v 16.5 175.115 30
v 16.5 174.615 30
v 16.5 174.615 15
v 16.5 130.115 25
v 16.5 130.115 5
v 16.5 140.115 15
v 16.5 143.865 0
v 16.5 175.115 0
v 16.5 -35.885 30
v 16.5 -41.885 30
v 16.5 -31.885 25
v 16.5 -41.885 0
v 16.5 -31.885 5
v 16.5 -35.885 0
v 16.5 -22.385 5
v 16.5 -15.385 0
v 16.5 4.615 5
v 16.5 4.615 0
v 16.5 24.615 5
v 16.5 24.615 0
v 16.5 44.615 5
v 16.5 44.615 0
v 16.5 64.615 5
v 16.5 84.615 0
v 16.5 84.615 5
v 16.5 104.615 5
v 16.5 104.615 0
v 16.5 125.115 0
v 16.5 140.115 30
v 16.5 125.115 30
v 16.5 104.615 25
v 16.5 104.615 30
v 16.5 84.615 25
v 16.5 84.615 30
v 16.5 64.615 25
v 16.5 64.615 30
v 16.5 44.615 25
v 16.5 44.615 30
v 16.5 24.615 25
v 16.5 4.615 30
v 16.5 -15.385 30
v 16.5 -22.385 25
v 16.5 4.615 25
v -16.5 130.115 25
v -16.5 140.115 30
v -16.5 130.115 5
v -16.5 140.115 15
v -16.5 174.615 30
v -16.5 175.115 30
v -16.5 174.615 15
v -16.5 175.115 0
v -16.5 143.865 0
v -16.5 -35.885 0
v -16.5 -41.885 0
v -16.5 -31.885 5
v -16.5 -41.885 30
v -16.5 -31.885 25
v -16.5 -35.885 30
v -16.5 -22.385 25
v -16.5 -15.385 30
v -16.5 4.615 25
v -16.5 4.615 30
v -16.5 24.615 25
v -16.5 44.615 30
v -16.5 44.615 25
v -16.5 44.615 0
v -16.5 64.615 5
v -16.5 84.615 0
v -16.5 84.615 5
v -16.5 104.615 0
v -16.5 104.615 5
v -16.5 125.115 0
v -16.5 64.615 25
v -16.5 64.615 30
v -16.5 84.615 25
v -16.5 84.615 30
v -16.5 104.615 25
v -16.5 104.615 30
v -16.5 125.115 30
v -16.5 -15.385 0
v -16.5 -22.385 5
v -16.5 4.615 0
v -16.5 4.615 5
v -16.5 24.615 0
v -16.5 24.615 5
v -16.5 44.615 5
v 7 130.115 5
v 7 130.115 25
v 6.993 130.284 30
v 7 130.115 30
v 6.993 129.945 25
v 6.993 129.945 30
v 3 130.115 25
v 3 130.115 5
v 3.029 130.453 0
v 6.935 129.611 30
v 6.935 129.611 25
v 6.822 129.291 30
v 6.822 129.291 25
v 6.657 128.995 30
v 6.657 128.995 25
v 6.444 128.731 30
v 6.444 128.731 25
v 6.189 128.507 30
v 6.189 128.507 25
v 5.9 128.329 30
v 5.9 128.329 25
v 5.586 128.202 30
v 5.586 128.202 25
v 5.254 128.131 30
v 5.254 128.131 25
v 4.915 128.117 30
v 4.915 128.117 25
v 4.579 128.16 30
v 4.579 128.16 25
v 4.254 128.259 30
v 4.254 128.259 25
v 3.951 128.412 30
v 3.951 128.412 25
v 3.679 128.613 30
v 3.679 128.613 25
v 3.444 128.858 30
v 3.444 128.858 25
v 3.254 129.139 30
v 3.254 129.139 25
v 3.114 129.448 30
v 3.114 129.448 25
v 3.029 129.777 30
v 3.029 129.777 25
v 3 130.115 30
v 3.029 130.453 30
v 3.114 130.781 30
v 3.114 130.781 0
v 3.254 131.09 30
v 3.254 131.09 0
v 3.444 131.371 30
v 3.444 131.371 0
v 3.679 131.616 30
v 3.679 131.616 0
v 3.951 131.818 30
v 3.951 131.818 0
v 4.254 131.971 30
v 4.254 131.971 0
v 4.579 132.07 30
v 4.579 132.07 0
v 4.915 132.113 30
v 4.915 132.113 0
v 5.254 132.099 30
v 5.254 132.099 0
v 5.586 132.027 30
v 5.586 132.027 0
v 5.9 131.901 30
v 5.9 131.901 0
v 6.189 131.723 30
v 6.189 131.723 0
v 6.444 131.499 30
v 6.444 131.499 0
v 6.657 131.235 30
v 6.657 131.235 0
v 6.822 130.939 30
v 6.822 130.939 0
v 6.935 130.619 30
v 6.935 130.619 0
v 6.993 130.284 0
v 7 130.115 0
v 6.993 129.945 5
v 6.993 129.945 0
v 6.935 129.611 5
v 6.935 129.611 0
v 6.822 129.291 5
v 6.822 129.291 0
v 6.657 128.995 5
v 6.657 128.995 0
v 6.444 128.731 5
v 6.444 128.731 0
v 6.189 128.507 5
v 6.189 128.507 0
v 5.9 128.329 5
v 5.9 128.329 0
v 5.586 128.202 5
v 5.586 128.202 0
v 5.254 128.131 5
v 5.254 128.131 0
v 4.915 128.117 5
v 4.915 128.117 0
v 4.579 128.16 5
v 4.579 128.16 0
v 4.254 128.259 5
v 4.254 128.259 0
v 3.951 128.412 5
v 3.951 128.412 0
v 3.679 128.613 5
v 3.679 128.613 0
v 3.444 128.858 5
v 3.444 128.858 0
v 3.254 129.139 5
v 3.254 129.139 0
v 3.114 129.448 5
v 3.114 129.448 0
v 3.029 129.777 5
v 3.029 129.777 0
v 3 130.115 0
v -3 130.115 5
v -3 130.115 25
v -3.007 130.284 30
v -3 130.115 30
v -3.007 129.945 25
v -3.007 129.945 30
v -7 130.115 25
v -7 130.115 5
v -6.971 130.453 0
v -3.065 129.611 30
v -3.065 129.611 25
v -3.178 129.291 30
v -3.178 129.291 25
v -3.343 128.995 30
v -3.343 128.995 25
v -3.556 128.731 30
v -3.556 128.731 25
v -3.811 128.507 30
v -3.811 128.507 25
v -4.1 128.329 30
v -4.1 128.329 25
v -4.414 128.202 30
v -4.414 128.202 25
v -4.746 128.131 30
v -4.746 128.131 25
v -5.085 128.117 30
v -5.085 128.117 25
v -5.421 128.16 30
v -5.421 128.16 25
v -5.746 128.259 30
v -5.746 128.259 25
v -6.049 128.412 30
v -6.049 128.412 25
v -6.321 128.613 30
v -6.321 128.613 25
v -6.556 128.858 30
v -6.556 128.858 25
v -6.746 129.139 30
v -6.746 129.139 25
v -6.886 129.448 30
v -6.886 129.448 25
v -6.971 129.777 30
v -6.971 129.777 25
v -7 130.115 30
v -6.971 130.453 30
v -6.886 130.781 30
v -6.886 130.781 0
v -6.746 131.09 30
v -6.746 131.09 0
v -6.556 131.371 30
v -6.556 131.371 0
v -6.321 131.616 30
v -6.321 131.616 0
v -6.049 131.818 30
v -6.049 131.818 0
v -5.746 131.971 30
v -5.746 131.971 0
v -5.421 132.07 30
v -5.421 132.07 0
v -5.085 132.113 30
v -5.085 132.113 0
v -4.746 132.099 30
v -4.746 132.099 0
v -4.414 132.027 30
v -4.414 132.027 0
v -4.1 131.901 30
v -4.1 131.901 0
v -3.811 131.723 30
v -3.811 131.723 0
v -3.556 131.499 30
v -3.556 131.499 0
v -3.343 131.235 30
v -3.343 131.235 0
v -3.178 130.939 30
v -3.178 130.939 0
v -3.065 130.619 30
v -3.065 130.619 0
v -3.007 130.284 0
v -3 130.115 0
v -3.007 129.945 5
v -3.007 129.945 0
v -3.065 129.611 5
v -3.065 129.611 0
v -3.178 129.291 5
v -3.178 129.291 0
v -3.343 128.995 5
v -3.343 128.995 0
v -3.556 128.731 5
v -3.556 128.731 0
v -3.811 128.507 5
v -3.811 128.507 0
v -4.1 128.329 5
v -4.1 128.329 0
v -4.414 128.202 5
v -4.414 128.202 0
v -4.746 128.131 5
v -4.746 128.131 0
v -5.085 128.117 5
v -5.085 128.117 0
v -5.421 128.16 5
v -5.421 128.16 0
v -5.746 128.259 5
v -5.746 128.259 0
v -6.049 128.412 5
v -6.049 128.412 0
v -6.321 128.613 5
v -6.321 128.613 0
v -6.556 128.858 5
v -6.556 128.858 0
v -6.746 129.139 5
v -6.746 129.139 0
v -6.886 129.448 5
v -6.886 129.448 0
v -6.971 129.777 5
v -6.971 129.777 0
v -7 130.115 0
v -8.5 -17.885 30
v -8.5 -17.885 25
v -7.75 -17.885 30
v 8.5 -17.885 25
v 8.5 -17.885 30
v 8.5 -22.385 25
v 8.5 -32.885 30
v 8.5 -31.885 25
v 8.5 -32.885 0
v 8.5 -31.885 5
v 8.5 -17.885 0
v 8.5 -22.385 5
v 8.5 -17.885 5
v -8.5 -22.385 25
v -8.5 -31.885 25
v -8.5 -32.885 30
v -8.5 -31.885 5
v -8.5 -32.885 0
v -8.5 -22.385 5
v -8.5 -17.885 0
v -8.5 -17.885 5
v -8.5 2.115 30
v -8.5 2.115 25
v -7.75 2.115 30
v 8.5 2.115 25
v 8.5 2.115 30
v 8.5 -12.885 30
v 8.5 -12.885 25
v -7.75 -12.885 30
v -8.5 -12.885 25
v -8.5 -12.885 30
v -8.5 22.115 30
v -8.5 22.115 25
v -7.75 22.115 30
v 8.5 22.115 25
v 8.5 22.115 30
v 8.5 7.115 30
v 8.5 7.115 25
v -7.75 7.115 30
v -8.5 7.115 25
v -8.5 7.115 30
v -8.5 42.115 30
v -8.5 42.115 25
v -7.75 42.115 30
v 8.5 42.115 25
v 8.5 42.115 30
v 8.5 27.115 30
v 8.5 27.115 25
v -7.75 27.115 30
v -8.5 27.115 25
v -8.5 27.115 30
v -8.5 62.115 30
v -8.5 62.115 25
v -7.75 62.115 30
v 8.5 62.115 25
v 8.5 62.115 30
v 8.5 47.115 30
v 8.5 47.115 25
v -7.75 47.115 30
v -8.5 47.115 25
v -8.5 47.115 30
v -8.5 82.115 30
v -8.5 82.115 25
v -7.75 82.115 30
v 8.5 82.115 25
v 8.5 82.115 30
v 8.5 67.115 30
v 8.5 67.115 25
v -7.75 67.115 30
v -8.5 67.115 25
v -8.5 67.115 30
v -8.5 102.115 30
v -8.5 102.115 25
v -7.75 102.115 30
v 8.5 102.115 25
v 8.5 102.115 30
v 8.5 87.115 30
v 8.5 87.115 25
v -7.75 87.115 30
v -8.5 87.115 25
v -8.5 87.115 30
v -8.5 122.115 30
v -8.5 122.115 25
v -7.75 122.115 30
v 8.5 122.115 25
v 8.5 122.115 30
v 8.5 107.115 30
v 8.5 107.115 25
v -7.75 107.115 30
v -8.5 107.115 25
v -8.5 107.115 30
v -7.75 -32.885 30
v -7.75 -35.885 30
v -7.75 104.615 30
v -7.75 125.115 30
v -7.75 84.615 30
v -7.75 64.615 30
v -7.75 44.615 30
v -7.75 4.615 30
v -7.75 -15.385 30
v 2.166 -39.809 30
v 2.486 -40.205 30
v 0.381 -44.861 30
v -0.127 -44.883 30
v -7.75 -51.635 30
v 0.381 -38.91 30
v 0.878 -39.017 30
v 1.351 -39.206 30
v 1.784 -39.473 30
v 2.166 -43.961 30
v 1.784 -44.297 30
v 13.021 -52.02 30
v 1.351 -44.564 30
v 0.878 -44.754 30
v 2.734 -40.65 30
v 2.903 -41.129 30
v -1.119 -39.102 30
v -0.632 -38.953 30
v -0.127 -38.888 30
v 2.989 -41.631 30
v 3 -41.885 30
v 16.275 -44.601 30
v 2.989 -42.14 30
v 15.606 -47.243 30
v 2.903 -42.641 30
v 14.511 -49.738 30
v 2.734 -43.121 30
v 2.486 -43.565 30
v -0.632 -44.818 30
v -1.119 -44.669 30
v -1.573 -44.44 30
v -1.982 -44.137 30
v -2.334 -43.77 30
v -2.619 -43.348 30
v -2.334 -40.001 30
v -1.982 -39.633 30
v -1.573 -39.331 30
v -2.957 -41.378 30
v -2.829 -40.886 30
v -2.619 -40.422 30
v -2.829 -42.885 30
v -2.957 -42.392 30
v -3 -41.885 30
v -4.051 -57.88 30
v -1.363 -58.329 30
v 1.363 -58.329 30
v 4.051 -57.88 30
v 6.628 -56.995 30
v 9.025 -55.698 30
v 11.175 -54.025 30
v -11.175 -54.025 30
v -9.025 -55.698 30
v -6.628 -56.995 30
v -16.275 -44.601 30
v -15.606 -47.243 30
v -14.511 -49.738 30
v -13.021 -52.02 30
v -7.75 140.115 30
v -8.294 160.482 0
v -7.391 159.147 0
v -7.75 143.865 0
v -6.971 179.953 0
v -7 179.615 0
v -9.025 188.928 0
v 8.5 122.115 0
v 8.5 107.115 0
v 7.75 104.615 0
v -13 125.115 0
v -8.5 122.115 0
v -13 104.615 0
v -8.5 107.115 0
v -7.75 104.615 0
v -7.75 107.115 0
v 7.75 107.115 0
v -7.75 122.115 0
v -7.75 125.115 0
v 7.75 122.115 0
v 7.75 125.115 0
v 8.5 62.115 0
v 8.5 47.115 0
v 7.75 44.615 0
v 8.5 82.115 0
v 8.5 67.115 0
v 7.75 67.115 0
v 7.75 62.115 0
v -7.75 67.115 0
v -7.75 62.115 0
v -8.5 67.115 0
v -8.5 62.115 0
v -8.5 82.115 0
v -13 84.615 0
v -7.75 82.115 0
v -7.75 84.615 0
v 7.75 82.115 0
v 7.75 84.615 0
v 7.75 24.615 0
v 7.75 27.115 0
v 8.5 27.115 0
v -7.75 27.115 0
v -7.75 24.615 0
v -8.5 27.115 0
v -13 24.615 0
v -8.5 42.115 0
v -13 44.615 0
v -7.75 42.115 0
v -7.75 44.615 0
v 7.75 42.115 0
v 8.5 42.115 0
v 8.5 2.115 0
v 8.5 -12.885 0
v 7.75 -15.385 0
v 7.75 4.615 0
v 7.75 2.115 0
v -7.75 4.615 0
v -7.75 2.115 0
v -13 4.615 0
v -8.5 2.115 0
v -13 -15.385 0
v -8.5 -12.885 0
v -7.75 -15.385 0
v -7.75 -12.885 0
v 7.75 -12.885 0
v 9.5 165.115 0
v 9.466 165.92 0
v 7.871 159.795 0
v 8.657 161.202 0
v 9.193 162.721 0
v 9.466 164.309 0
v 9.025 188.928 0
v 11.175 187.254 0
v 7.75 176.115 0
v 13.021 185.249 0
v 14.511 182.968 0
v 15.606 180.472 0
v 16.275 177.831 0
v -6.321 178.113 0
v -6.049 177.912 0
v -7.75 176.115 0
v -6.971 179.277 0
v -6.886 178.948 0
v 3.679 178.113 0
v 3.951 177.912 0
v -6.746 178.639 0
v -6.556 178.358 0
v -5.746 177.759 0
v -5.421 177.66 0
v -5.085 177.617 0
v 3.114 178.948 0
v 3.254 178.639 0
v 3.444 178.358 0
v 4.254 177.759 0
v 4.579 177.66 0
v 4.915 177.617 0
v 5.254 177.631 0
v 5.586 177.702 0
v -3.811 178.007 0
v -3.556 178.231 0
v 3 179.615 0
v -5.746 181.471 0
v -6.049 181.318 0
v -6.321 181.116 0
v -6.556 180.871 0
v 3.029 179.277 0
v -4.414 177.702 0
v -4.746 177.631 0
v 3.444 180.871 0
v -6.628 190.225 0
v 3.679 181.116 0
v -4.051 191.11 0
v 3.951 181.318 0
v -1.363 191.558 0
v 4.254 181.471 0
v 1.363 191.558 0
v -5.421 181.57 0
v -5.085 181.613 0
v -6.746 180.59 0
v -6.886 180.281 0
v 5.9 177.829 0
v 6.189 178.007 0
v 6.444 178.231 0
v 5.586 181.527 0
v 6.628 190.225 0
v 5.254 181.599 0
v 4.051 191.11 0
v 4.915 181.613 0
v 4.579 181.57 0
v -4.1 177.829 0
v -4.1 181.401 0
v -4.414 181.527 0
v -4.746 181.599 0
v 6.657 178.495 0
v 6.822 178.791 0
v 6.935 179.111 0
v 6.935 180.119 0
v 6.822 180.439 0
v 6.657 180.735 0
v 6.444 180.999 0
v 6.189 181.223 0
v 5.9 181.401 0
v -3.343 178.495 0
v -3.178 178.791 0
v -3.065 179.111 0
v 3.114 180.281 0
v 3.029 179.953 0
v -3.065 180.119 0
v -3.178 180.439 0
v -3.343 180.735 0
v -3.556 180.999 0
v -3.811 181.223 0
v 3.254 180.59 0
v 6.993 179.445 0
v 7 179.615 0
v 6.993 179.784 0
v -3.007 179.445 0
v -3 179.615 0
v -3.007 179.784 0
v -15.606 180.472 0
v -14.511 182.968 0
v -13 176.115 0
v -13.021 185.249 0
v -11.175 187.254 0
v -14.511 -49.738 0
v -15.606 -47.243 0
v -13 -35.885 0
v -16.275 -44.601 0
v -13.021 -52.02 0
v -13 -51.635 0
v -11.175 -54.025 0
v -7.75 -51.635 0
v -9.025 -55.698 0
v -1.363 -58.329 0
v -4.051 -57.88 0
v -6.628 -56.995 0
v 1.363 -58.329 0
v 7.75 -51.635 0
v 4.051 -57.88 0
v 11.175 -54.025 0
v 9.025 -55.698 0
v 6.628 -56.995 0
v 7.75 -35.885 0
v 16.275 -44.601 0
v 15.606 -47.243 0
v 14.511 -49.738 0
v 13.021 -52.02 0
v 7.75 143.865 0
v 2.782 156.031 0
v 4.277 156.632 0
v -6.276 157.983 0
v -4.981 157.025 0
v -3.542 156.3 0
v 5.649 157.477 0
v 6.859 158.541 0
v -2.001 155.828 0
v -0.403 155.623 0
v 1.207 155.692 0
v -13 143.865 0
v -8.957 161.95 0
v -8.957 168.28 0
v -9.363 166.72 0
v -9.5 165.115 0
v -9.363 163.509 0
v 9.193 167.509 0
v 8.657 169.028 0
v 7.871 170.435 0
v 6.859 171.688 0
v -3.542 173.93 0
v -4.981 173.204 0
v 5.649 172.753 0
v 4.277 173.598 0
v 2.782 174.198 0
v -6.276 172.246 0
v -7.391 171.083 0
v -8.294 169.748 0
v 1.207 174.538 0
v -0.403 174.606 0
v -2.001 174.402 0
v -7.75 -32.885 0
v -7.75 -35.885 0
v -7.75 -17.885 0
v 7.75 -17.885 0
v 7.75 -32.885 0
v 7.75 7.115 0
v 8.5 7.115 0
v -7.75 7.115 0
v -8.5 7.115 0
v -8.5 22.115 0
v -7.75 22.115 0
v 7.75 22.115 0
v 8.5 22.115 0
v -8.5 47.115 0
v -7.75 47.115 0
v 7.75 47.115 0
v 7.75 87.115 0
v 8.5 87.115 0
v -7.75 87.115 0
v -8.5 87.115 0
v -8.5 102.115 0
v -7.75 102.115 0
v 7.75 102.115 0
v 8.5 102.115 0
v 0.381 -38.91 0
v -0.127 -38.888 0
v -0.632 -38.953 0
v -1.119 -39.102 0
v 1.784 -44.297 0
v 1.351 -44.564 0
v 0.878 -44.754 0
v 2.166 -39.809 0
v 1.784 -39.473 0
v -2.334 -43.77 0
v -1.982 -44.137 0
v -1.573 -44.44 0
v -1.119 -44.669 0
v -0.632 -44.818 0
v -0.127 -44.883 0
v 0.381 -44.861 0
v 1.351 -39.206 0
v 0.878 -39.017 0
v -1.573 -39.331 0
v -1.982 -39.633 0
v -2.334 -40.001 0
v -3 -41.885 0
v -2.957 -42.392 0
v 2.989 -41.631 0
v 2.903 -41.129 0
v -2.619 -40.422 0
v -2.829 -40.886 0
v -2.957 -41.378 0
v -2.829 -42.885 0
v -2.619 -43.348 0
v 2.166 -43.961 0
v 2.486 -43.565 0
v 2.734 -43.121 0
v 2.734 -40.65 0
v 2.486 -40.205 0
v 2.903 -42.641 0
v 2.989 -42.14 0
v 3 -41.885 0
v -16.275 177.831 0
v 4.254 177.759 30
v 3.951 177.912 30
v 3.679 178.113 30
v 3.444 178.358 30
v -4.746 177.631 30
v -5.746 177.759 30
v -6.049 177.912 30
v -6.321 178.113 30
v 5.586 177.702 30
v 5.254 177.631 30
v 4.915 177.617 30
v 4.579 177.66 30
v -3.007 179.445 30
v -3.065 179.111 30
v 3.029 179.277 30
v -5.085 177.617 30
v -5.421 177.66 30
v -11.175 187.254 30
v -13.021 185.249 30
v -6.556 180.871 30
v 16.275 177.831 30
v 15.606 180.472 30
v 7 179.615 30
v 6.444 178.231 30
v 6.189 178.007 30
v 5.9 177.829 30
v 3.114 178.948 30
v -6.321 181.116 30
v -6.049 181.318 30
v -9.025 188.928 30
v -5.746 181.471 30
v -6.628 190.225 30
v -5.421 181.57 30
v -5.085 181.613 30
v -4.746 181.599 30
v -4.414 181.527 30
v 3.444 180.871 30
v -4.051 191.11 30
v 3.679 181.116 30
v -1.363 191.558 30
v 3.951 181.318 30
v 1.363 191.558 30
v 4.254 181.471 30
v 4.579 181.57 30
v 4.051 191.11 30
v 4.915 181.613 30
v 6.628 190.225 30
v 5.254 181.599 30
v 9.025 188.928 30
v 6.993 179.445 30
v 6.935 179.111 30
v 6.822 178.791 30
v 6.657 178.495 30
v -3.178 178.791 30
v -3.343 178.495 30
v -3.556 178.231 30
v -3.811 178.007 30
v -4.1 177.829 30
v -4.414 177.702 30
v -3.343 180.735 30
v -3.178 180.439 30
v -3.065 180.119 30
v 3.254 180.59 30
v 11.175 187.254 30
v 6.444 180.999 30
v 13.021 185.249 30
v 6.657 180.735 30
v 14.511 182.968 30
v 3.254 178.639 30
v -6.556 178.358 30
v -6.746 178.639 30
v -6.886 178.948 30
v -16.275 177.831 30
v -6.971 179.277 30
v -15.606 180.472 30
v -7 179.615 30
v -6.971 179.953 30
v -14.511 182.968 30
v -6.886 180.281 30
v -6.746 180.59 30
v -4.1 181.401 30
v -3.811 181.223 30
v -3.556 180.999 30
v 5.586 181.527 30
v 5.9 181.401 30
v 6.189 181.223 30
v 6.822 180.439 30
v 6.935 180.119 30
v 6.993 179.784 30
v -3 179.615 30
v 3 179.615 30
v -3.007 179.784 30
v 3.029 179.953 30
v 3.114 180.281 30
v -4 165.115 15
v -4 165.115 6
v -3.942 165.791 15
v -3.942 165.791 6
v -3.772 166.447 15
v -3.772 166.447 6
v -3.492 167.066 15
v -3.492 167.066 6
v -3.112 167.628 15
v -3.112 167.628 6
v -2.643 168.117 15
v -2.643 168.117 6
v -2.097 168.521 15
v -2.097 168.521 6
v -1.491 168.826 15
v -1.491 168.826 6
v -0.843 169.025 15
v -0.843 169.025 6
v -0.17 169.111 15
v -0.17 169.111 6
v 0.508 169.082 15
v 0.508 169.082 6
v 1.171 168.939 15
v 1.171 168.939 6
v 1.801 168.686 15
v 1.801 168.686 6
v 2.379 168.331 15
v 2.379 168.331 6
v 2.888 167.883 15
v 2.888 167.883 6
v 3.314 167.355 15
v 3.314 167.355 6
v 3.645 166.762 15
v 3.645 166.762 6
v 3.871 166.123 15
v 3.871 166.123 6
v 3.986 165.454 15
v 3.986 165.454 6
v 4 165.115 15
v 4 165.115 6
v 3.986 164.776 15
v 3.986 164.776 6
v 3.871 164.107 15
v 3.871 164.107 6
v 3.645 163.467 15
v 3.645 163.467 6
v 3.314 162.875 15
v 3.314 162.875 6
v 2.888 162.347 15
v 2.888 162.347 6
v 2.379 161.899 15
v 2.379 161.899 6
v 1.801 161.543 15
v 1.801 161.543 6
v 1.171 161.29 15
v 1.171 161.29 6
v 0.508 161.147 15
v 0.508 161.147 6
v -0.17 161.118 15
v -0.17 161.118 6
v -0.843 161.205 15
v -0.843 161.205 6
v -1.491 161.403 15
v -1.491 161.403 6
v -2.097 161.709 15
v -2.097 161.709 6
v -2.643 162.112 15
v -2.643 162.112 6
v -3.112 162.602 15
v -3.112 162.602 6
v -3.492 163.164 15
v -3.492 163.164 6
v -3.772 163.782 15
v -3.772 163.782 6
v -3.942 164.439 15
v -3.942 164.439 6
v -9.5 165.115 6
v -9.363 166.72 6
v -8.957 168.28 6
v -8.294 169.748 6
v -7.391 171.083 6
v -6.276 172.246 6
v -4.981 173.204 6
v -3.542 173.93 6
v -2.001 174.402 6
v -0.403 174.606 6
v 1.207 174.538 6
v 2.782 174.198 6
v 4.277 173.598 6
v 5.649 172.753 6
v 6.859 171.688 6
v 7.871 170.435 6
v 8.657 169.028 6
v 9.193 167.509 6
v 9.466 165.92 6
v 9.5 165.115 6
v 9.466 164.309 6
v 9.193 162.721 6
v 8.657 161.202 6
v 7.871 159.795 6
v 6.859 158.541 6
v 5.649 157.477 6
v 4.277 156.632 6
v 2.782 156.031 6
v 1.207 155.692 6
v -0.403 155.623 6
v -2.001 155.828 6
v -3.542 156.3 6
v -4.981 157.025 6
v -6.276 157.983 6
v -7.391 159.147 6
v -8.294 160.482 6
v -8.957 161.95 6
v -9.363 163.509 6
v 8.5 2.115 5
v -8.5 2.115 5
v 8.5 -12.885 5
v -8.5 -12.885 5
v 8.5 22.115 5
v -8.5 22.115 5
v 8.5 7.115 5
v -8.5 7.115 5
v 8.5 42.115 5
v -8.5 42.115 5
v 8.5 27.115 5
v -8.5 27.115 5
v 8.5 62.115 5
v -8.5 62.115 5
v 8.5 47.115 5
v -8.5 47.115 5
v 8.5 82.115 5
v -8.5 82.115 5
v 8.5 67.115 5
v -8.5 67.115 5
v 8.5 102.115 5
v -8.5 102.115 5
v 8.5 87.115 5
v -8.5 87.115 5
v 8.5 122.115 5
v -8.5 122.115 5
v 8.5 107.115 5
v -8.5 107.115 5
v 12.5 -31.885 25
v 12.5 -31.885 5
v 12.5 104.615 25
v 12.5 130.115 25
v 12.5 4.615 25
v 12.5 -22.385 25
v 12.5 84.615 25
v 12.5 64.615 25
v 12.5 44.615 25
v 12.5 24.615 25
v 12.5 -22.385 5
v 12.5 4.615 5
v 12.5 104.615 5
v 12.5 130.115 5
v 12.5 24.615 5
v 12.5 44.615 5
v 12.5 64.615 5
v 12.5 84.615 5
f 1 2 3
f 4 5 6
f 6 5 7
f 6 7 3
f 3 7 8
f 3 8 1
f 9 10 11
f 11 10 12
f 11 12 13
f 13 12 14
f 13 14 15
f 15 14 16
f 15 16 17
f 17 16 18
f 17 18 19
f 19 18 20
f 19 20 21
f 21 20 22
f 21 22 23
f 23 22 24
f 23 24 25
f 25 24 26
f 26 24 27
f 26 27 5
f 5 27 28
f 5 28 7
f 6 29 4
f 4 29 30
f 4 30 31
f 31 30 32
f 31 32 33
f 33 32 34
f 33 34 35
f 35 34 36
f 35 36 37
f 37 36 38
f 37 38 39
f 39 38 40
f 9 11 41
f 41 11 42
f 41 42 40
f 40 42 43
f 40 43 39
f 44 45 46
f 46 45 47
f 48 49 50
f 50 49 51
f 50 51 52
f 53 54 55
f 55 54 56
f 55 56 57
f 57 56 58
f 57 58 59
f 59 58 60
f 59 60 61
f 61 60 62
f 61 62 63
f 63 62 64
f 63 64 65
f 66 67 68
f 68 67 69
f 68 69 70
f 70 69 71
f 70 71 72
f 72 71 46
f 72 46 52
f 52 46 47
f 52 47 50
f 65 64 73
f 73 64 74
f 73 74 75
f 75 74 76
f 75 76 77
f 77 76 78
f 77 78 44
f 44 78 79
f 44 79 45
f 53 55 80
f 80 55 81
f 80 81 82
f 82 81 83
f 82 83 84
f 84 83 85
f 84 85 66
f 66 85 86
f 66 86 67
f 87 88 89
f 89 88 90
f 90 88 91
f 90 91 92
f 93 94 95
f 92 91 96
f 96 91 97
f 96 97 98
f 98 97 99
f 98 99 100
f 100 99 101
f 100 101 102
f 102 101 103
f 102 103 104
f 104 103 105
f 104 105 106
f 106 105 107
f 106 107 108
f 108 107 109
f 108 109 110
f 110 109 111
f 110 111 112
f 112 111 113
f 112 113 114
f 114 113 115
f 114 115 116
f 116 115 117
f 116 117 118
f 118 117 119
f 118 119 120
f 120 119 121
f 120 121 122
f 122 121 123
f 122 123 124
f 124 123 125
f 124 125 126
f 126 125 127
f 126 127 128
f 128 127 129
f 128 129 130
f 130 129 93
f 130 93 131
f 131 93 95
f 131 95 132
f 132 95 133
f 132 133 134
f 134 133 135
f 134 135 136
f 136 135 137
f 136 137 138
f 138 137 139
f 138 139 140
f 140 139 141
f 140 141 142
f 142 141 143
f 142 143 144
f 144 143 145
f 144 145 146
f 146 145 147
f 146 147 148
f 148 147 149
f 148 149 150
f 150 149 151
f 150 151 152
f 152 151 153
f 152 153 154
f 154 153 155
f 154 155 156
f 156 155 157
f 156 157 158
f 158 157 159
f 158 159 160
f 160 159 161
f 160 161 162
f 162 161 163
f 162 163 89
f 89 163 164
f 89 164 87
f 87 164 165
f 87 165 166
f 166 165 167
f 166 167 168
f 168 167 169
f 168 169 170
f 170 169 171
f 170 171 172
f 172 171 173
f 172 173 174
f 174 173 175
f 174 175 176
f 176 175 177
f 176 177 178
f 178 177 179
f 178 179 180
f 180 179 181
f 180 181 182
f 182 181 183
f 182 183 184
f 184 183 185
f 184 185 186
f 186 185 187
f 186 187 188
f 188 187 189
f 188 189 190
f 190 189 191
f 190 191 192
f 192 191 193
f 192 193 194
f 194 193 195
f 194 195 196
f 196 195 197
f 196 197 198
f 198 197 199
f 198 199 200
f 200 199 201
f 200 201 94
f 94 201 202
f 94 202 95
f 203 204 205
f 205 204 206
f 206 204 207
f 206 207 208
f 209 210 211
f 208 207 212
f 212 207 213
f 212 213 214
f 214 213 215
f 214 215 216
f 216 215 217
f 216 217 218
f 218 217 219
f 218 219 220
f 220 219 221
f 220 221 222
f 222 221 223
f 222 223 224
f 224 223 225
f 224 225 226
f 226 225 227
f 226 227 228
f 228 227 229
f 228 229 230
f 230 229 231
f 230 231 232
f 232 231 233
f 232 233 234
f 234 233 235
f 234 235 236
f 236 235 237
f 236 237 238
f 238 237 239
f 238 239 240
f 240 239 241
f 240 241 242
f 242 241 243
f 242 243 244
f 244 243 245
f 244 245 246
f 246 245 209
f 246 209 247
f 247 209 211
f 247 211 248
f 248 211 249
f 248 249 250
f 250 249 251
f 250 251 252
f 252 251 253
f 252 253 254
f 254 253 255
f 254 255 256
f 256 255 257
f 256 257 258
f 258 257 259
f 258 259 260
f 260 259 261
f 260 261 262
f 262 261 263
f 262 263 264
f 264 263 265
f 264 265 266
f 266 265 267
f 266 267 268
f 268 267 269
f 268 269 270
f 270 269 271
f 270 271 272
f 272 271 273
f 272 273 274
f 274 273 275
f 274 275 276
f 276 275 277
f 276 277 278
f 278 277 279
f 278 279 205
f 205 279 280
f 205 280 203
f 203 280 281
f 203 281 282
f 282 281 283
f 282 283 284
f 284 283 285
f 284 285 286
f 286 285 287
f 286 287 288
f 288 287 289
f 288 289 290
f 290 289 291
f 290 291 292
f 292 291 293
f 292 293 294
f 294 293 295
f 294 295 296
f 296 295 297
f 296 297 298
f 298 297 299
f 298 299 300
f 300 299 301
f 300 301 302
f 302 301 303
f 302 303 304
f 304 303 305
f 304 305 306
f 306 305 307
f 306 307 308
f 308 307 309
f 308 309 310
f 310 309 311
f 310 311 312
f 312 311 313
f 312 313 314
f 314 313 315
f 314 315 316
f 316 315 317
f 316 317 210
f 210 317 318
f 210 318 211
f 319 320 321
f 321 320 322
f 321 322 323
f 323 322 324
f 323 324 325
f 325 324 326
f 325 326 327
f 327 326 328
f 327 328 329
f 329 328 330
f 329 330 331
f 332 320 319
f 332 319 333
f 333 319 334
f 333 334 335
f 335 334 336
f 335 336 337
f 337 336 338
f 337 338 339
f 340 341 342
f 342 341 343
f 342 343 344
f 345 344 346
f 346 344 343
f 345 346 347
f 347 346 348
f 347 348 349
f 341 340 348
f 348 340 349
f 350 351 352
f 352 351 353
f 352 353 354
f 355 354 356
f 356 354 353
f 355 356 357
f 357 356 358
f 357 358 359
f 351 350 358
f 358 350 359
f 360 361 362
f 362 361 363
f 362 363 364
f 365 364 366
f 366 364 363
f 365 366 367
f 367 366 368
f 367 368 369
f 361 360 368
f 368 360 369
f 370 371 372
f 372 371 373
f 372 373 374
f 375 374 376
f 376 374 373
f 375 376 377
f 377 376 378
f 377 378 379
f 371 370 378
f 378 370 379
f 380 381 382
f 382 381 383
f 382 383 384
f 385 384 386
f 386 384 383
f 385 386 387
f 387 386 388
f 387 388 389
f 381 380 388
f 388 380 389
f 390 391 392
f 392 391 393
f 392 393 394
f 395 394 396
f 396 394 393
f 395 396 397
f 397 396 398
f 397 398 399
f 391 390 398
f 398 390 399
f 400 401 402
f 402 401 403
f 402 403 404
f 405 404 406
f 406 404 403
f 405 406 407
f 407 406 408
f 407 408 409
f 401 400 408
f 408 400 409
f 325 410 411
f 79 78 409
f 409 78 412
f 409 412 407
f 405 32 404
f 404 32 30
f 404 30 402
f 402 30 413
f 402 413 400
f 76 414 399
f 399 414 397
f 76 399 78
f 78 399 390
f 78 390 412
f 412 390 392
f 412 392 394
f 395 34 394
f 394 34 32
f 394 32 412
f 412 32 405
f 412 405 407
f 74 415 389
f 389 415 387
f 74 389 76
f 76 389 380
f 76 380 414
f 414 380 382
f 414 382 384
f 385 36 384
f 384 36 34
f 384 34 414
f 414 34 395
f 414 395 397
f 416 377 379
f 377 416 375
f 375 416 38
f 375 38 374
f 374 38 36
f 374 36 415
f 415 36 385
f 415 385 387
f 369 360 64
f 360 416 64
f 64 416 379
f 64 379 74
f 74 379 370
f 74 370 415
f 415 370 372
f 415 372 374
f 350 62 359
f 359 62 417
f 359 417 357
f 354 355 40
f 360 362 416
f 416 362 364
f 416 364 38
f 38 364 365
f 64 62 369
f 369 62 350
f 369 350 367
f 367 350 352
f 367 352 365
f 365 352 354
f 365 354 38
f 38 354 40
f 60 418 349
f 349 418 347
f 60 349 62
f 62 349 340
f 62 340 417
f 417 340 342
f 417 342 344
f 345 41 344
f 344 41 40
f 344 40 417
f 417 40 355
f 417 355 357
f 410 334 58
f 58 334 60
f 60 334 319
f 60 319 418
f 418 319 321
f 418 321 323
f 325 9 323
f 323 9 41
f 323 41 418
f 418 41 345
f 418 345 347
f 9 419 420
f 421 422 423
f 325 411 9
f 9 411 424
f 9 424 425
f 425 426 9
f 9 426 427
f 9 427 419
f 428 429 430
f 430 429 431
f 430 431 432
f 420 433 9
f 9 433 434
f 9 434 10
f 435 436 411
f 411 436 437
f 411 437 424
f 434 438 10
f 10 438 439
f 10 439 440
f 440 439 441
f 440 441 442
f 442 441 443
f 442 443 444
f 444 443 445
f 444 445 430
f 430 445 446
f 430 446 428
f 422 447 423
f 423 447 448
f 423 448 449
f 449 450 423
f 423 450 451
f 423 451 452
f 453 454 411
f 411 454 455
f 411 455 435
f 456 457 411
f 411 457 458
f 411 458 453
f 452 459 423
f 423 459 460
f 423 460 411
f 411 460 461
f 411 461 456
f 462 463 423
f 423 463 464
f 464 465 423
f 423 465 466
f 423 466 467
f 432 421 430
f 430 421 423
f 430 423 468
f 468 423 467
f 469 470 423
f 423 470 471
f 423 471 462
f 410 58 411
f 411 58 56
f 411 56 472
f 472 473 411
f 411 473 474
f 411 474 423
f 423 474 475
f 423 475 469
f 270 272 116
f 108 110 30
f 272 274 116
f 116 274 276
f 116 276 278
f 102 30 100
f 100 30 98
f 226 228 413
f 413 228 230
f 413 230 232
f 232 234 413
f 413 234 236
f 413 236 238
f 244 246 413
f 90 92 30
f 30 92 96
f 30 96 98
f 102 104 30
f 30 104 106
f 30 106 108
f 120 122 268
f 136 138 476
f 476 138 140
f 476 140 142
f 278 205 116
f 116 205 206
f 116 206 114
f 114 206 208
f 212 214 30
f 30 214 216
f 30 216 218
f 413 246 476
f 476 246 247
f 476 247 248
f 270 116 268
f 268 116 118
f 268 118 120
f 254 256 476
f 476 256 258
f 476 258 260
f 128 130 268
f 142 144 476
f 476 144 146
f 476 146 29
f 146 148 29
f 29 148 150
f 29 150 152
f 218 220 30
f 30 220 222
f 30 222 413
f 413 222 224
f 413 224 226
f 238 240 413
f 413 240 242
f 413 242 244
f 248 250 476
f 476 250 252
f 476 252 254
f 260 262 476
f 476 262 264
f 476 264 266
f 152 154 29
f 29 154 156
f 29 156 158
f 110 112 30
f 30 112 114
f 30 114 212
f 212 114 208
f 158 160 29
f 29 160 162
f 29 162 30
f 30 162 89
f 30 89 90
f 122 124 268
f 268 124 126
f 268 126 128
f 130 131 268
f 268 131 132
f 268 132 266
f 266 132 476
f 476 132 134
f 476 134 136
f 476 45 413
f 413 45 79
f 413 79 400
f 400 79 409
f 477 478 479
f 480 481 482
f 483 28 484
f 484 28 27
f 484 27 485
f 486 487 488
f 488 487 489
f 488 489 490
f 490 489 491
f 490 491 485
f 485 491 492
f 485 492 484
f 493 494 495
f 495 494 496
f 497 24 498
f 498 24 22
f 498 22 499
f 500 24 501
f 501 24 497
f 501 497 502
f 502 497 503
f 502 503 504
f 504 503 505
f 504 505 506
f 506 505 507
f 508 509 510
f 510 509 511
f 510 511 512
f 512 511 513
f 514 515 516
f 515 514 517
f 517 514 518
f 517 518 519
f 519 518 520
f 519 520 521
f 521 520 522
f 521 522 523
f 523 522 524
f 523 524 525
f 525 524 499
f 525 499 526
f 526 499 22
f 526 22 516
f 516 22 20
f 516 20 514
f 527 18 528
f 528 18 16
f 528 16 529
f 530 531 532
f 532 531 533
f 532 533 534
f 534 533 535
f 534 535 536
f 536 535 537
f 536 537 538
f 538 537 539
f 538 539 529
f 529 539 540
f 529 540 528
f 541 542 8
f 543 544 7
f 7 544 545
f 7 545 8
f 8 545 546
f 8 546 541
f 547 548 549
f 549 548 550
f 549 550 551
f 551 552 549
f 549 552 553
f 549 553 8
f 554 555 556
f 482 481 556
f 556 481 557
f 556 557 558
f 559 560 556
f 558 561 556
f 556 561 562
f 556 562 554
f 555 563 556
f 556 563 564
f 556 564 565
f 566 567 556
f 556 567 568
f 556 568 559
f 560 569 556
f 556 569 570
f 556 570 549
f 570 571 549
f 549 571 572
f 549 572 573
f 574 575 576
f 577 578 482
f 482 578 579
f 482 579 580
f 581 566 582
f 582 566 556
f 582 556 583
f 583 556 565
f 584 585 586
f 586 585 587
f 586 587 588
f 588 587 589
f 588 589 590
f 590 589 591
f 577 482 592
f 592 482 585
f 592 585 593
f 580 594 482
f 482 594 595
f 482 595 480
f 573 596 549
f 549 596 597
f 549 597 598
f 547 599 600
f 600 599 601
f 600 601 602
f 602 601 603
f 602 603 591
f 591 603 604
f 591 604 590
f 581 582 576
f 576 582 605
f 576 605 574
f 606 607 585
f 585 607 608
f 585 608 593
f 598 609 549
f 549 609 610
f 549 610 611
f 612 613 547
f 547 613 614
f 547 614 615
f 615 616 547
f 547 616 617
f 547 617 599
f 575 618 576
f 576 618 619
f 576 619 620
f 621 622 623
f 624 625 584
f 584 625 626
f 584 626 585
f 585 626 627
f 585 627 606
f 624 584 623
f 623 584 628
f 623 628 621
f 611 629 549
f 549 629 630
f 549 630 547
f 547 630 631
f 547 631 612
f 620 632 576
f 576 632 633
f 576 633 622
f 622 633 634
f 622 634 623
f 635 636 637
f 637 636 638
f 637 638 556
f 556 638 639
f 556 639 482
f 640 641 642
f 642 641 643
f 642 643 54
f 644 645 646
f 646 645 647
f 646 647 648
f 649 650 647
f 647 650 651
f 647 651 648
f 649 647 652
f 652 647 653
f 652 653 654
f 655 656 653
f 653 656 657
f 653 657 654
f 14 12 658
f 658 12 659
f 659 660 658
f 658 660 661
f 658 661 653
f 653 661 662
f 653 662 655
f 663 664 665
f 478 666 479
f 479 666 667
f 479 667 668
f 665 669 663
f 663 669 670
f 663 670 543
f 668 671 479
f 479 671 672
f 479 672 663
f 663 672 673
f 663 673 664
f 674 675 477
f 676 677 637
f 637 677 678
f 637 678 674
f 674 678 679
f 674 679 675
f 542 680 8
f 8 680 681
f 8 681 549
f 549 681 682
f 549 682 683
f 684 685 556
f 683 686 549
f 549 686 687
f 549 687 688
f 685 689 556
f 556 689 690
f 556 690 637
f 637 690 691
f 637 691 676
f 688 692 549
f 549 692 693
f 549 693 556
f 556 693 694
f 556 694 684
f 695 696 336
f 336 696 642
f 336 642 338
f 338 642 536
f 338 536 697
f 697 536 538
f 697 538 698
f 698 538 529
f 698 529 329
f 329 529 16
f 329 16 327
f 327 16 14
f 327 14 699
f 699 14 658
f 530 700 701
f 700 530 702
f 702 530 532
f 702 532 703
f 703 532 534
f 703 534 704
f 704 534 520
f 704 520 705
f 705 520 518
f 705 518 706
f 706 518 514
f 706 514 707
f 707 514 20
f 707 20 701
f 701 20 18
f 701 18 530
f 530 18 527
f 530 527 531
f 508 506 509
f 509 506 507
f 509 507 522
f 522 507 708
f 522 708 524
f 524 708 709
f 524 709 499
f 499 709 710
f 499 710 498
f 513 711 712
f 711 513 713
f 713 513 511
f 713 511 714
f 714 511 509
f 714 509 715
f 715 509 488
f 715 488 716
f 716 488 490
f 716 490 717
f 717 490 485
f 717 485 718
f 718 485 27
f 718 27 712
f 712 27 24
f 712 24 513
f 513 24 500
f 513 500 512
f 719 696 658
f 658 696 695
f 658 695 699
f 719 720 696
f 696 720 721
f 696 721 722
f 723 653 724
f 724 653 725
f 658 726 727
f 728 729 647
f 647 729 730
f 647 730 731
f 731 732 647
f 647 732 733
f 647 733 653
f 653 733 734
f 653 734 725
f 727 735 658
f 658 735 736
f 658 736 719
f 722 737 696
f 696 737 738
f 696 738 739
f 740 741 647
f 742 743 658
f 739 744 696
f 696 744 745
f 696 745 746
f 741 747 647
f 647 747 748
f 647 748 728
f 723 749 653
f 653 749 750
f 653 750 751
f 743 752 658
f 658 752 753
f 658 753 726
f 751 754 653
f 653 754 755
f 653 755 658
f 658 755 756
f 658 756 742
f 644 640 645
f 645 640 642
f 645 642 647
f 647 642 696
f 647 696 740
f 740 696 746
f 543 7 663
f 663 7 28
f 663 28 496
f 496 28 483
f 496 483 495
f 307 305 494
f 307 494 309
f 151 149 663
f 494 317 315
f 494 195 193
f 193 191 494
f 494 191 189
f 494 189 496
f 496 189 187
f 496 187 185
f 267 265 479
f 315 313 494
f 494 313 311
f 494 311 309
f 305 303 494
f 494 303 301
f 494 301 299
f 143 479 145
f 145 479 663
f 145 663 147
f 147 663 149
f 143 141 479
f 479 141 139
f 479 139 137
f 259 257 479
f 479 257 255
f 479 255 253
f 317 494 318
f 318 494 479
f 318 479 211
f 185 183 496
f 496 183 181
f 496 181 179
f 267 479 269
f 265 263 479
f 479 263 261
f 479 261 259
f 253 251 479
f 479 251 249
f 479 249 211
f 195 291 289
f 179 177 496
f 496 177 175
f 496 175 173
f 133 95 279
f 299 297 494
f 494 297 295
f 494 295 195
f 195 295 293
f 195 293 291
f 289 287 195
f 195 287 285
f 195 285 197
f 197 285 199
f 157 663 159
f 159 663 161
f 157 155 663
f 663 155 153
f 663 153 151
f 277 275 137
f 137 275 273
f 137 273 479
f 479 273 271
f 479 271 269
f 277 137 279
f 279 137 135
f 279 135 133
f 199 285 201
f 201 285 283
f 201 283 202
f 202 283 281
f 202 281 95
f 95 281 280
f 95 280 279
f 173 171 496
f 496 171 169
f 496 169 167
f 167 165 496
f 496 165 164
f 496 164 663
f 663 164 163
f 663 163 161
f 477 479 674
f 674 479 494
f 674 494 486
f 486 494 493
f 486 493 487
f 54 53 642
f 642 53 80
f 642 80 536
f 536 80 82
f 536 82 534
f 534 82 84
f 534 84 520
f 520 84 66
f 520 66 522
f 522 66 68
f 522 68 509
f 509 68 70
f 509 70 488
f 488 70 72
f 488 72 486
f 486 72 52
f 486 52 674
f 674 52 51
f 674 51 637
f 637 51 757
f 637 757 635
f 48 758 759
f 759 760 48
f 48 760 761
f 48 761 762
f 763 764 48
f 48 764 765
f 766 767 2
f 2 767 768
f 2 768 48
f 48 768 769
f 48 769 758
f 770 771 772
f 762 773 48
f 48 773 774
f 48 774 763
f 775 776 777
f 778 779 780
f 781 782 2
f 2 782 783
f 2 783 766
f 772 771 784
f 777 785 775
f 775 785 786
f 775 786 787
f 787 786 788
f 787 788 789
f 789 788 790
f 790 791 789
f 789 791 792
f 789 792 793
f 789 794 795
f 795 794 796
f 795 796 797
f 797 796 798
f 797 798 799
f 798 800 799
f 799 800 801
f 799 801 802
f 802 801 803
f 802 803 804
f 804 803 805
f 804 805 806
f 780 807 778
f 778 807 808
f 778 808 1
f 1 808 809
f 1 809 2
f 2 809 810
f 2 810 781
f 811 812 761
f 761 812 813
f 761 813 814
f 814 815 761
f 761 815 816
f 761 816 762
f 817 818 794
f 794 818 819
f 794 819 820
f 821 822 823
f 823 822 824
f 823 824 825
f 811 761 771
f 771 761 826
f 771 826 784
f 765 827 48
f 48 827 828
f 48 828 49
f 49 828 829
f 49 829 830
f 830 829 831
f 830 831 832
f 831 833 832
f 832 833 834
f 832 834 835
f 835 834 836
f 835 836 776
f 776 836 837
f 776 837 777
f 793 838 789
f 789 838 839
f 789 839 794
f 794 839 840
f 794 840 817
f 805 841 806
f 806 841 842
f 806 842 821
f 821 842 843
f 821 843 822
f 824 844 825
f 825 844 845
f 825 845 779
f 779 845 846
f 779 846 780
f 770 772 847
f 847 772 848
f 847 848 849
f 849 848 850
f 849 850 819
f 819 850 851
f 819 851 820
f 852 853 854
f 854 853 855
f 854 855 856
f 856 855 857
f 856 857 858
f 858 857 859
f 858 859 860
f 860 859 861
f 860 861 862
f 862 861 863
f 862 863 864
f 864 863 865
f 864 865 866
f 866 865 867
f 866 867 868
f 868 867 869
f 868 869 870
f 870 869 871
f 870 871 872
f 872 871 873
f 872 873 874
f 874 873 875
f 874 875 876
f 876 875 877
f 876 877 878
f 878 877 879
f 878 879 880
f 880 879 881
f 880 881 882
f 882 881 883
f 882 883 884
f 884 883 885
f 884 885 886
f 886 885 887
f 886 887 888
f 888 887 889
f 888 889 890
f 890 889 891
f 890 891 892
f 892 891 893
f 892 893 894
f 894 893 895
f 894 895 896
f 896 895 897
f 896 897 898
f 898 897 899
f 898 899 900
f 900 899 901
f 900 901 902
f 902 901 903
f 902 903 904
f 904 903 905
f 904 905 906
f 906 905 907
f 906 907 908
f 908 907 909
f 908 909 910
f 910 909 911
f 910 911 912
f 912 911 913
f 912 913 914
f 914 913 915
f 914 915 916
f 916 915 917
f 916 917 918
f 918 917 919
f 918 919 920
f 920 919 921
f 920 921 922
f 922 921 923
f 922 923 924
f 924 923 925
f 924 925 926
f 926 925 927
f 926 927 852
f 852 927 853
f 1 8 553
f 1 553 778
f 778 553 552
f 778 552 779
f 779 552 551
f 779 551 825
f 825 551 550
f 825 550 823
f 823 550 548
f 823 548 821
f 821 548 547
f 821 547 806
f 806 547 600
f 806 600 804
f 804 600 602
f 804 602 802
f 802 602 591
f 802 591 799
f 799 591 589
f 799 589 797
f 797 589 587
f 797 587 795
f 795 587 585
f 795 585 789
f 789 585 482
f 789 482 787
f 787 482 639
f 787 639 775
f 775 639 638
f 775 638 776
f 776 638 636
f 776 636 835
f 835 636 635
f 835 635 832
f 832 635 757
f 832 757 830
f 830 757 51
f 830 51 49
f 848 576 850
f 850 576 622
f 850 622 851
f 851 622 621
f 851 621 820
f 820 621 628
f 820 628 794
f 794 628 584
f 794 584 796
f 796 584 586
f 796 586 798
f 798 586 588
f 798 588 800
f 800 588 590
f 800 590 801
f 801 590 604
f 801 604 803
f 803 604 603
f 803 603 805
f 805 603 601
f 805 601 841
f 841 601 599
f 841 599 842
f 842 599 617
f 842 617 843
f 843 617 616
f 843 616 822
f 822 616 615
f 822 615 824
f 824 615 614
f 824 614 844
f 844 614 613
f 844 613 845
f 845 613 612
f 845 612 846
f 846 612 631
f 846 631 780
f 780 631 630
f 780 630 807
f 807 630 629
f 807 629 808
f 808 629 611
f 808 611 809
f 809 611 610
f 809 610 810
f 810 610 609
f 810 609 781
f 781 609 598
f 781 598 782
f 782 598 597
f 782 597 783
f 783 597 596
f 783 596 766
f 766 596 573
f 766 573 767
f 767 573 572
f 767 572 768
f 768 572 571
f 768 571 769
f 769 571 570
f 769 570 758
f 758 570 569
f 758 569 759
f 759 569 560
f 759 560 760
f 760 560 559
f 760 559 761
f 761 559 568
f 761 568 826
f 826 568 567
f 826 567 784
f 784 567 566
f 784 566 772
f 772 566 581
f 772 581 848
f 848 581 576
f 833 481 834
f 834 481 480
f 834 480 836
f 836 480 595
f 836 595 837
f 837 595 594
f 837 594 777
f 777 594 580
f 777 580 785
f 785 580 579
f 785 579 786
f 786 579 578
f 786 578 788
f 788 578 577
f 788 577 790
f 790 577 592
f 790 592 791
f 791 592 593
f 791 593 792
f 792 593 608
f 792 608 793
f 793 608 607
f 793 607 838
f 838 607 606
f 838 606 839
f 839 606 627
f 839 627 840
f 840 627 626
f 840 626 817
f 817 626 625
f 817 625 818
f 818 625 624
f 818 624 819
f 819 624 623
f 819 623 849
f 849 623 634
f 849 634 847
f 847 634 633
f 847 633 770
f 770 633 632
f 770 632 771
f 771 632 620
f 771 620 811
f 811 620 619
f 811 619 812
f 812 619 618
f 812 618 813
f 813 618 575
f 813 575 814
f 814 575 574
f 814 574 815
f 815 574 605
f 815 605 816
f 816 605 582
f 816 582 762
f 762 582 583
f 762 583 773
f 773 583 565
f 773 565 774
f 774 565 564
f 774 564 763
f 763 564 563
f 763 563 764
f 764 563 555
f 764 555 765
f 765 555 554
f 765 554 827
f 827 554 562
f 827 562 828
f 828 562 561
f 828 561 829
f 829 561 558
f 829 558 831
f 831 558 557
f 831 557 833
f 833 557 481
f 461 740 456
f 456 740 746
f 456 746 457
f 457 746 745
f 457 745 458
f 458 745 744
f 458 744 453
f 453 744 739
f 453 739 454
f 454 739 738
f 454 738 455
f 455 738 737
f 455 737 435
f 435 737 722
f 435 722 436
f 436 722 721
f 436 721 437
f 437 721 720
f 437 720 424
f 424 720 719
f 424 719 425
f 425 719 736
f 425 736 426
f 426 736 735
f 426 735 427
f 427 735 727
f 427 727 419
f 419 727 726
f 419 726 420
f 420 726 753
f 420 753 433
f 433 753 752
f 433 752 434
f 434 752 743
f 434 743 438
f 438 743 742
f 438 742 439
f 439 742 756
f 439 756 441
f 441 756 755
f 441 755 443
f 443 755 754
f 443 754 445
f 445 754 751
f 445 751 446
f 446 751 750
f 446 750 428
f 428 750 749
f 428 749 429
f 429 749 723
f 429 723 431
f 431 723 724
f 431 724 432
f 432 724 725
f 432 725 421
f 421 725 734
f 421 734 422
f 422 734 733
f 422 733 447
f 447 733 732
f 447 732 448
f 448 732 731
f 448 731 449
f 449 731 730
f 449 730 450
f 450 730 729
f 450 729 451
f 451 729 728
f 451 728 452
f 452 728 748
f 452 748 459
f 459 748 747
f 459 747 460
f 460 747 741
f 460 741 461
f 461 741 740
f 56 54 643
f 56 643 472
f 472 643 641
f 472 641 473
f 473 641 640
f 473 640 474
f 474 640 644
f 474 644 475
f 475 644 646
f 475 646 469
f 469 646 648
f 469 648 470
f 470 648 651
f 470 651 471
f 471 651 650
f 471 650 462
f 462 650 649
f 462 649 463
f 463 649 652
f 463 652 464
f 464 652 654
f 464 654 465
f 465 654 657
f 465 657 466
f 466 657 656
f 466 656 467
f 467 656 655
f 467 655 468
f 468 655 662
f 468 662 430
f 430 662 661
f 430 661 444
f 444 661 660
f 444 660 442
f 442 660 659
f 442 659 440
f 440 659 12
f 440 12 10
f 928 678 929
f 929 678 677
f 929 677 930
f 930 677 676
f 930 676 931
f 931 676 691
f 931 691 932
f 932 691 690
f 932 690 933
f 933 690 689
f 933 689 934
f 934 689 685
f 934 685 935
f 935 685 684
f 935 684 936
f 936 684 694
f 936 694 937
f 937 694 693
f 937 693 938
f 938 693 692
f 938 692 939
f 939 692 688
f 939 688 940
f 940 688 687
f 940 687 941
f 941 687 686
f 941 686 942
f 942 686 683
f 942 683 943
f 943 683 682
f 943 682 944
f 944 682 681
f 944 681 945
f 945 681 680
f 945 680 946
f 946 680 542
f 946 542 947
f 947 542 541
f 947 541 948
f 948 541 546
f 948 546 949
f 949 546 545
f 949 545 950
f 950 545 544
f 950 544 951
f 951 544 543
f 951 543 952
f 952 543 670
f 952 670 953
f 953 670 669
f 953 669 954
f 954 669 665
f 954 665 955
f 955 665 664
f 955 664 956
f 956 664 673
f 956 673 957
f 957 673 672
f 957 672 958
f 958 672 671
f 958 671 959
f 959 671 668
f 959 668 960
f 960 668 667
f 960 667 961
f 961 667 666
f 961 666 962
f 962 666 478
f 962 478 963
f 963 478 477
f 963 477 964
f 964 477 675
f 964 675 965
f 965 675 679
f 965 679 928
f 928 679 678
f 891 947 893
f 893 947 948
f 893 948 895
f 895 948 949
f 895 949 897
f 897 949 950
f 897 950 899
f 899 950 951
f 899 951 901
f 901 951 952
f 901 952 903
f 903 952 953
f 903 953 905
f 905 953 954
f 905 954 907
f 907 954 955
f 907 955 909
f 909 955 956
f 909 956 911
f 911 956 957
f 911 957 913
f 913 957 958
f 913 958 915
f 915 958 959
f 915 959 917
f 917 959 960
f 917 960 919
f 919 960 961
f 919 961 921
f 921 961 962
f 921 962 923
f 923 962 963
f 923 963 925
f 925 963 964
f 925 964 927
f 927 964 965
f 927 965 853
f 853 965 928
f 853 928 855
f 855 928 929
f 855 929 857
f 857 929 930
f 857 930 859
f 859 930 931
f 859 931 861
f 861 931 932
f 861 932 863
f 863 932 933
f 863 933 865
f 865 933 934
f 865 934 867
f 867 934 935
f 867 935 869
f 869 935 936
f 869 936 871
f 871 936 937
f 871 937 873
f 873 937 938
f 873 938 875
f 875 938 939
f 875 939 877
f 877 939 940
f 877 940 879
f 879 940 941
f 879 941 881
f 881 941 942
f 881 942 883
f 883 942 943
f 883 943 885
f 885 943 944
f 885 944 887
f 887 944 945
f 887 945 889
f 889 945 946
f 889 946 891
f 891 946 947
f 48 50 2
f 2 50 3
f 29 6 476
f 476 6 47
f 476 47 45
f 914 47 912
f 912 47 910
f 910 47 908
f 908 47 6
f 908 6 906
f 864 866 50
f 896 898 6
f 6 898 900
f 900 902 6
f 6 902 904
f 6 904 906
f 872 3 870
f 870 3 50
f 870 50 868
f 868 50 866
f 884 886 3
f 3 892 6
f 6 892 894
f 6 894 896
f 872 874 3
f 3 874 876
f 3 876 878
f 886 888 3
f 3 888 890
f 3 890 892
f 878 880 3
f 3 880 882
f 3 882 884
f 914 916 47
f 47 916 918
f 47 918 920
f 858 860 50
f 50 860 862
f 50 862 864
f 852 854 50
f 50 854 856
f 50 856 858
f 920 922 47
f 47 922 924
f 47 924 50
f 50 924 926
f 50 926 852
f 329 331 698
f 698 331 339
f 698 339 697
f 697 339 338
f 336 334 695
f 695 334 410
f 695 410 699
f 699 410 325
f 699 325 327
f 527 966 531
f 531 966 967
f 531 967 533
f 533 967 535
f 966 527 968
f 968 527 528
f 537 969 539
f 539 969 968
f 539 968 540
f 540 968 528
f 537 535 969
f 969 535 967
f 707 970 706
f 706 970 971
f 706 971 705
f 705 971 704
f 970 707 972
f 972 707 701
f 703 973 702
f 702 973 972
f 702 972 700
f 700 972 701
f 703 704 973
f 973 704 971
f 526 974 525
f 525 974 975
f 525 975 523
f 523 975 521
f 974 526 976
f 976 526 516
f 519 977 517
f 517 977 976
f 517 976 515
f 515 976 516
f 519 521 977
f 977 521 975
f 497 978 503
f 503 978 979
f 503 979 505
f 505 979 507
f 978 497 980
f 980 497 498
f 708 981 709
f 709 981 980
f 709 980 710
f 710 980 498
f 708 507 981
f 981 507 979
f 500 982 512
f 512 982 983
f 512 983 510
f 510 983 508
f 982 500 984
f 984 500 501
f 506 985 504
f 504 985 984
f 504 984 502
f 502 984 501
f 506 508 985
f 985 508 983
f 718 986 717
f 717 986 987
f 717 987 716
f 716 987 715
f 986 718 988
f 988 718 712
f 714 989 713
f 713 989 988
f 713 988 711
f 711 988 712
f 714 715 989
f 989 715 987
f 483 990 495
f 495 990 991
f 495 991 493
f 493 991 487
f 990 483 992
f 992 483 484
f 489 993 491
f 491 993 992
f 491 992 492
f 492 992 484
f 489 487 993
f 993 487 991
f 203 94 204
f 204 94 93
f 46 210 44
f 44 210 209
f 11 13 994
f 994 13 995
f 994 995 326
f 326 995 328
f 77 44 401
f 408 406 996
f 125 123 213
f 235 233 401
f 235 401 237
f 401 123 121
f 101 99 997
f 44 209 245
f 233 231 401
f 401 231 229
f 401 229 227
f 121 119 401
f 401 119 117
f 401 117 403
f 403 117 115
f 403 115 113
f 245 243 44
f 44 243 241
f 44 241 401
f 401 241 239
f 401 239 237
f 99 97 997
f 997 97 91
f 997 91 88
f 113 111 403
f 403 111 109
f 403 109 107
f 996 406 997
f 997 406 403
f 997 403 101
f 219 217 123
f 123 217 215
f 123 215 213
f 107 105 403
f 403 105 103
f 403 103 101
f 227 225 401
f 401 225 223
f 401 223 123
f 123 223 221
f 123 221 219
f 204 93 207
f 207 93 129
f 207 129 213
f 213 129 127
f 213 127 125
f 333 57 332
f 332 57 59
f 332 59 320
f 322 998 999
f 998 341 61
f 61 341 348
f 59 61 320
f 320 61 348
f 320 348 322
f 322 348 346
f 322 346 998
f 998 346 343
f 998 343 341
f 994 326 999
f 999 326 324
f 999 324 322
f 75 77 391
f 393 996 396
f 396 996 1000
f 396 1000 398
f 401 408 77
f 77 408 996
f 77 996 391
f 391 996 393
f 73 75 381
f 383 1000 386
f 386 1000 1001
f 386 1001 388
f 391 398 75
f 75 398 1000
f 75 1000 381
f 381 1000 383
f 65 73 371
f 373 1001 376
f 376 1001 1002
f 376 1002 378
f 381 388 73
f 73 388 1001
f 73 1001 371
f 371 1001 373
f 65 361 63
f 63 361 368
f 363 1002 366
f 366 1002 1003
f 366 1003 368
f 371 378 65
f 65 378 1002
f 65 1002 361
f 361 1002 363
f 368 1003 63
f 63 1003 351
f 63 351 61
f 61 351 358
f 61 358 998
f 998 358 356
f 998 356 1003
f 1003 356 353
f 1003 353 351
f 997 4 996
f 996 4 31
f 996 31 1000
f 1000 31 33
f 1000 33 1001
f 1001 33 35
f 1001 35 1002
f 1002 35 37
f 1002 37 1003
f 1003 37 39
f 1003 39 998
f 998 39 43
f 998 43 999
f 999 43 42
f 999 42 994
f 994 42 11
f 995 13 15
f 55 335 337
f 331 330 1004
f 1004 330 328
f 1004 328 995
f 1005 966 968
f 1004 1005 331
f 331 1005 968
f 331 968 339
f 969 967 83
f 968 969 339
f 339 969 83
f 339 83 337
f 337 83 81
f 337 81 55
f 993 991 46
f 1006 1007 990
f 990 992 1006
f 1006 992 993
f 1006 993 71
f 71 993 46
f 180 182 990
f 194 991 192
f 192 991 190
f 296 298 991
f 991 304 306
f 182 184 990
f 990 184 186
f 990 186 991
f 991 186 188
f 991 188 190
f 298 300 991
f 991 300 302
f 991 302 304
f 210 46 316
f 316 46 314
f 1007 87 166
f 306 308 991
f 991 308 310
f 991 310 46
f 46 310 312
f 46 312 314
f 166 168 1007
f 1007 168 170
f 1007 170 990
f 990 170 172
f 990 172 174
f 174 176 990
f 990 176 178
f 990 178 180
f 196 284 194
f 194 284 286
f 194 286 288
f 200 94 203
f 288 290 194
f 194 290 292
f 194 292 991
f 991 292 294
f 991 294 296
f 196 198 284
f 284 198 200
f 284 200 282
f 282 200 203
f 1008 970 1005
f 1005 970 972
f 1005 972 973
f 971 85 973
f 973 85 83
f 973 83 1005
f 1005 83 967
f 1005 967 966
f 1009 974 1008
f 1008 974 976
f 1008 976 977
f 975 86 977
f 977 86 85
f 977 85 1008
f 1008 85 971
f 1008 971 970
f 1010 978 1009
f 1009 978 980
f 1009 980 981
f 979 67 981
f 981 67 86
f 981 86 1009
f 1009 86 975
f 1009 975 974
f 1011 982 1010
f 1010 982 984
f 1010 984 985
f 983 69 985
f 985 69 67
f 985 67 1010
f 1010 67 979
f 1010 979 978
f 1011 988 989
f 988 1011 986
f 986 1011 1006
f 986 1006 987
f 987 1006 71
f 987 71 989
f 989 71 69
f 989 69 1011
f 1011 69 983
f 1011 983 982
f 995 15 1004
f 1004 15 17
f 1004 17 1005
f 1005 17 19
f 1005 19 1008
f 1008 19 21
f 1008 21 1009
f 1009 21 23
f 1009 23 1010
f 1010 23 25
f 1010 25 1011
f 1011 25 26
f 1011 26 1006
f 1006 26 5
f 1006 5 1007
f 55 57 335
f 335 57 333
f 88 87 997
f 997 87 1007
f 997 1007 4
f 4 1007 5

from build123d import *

# Parameters (mm, degrees)
SKETCH1_R           = 3
SKETCH1_R_2         = 2
BOSS_EXTRUDE2_DEPTH = 30
SKETCH1_4_R         = 4
CUT_EXTRUDE1_DEPTH  = 39
SKETCH1_5_R         = 9.5
SKETCH1_5_R_2       = 4
CUT_EXTRUDE2_DEPTH  = 6
SKETCH3_W           = 38.691948064
SKETCH3_H           = 34.5
CUT_EXTRUDE5_DEPTH  = 15
SKETCH4_W           = 17
SKETCH4_H           = 15
CUT_EXTRUDE6_DEPTH  = 33
SKETCH6_W           = 20
SKETCH6_H           = 162
CUT_EXTRUDE7_DEPTH  = 33


with BuildPart() as part:
    # Sketch1 → Boss-Extrude2 (new body)
    with BuildSketch(Plane.XY):
        with BuildLine():
            Line((-16.5, 175.114767993), (-16.5, -41.885232007))
            ThreePointArc((-16.5, -41.885232007), (0, -58.385232007), (16.5, -41.885232007))
            Line((16.5, -41.885232007), (16.5, 175.114767993))
            ThreePointArc((16.5, 175.114767993), (0, 191.614767993), (-16.5, 175.114767993))
        make_face()
        with Locations((0, -41.885232007)):
            Circle(SKETCH1_R, mode=Mode.SUBTRACT)
        with Locations((-5, 130.114767993)):
            Circle(SKETCH1_R_2, mode=Mode.SUBTRACT)
        with Locations((-5, 179.614767993)):
            Circle(SKETCH1_R_2, mode=Mode.SUBTRACT)
        with Locations((5, 130.114767993)):
            Circle(SKETCH1_R_2, mode=Mode.SUBTRACT)
        with Locations((5, 179.614767993)):
            Circle(SKETCH1_R_2, mode=Mode.SUBTRACT)
    extrude(amount=BOSS_EXTRUDE2_DEPTH)

    # Sketch1<4> → Cut-Extrude1 (cut)
    with BuildSketch(Plane.XY):
        with Locations((0, 165.114767993)):
            Circle(SKETCH1_4_R)
    extrude(amount=CUT_EXTRUDE1_DEPTH, mode=Mode.SUBTRACT)

    # Sketch1<5> → Cut-Extrude2 (cut)
    with BuildSketch(Plane.XY):
        with Locations((0, 165.114767993)):
            Circle(SKETCH1_5_R)
        with Locations((0, 165.114767993)):
            Circle(SKETCH1_5_R_2, mode=Mode.SUBTRACT)
    extrude(amount=CUT_EXTRUDE2_DEPTH, mode=Mode.SUBTRACT)

    # Sketch3 → Cut-Extrude5 (cut)
    with BuildSketch(Plane.XY.offset(30)):
        with Locations((0.226361627, 157.364767993)):
            Rectangle(SKETCH3_W, SKETCH3_H)
    extrude(amount=-CUT_EXTRUDE5_DEPTH, mode=Mode.SUBTRACT)

    # Sketch4 → Cut-Extrude6 (cut)
    with BuildSketch(Plane.XY.offset(30)):
        with Locations((0, 114.614767993)):
            Rectangle(SKETCH4_W, SKETCH4_H)
        with Locations((0, 94.614767993)):
            Rectangle(SKETCH4_W, SKETCH4_H)
        with Locations((0, 74.614767993)):
            Rectangle(SKETCH4_W, SKETCH4_H)
        with Locations((0, 54.614767993)):
            Rectangle(SKETCH4_W, SKETCH4_H)
        with Locations((0, 34.614767993)):
            Rectangle(SKETCH4_W, SKETCH4_H)
        with Locations((0, 14.614767993)):
            Rectangle(SKETCH4_W, SKETCH4_H)
        with Locations((0, -5.385232007)):
            Rectangle(SKETCH4_W, SKETCH4_H)
        with Locations((0, -25.385232007)):
            Rectangle(SKETCH4_W, SKETCH4_H)
    extrude(amount=-CUT_EXTRUDE6_DEPTH, mode=Mode.SUBTRACT)

    # Sketch6 → Cut-Extrude7 (cut)
    with BuildSketch(Plane(origin=(16.5, 0, 0), x_dir=(0, 0, -1), z_dir=(1, 0, 0))):
        with Locations((-15, 49.114767993)):
            Rectangle(SKETCH6_W, SKETCH6_H)
    extrude(amount=-CUT_EXTRUDE7_DEPTH, mode=Mode.SUBTRACT)


solid = part.part
